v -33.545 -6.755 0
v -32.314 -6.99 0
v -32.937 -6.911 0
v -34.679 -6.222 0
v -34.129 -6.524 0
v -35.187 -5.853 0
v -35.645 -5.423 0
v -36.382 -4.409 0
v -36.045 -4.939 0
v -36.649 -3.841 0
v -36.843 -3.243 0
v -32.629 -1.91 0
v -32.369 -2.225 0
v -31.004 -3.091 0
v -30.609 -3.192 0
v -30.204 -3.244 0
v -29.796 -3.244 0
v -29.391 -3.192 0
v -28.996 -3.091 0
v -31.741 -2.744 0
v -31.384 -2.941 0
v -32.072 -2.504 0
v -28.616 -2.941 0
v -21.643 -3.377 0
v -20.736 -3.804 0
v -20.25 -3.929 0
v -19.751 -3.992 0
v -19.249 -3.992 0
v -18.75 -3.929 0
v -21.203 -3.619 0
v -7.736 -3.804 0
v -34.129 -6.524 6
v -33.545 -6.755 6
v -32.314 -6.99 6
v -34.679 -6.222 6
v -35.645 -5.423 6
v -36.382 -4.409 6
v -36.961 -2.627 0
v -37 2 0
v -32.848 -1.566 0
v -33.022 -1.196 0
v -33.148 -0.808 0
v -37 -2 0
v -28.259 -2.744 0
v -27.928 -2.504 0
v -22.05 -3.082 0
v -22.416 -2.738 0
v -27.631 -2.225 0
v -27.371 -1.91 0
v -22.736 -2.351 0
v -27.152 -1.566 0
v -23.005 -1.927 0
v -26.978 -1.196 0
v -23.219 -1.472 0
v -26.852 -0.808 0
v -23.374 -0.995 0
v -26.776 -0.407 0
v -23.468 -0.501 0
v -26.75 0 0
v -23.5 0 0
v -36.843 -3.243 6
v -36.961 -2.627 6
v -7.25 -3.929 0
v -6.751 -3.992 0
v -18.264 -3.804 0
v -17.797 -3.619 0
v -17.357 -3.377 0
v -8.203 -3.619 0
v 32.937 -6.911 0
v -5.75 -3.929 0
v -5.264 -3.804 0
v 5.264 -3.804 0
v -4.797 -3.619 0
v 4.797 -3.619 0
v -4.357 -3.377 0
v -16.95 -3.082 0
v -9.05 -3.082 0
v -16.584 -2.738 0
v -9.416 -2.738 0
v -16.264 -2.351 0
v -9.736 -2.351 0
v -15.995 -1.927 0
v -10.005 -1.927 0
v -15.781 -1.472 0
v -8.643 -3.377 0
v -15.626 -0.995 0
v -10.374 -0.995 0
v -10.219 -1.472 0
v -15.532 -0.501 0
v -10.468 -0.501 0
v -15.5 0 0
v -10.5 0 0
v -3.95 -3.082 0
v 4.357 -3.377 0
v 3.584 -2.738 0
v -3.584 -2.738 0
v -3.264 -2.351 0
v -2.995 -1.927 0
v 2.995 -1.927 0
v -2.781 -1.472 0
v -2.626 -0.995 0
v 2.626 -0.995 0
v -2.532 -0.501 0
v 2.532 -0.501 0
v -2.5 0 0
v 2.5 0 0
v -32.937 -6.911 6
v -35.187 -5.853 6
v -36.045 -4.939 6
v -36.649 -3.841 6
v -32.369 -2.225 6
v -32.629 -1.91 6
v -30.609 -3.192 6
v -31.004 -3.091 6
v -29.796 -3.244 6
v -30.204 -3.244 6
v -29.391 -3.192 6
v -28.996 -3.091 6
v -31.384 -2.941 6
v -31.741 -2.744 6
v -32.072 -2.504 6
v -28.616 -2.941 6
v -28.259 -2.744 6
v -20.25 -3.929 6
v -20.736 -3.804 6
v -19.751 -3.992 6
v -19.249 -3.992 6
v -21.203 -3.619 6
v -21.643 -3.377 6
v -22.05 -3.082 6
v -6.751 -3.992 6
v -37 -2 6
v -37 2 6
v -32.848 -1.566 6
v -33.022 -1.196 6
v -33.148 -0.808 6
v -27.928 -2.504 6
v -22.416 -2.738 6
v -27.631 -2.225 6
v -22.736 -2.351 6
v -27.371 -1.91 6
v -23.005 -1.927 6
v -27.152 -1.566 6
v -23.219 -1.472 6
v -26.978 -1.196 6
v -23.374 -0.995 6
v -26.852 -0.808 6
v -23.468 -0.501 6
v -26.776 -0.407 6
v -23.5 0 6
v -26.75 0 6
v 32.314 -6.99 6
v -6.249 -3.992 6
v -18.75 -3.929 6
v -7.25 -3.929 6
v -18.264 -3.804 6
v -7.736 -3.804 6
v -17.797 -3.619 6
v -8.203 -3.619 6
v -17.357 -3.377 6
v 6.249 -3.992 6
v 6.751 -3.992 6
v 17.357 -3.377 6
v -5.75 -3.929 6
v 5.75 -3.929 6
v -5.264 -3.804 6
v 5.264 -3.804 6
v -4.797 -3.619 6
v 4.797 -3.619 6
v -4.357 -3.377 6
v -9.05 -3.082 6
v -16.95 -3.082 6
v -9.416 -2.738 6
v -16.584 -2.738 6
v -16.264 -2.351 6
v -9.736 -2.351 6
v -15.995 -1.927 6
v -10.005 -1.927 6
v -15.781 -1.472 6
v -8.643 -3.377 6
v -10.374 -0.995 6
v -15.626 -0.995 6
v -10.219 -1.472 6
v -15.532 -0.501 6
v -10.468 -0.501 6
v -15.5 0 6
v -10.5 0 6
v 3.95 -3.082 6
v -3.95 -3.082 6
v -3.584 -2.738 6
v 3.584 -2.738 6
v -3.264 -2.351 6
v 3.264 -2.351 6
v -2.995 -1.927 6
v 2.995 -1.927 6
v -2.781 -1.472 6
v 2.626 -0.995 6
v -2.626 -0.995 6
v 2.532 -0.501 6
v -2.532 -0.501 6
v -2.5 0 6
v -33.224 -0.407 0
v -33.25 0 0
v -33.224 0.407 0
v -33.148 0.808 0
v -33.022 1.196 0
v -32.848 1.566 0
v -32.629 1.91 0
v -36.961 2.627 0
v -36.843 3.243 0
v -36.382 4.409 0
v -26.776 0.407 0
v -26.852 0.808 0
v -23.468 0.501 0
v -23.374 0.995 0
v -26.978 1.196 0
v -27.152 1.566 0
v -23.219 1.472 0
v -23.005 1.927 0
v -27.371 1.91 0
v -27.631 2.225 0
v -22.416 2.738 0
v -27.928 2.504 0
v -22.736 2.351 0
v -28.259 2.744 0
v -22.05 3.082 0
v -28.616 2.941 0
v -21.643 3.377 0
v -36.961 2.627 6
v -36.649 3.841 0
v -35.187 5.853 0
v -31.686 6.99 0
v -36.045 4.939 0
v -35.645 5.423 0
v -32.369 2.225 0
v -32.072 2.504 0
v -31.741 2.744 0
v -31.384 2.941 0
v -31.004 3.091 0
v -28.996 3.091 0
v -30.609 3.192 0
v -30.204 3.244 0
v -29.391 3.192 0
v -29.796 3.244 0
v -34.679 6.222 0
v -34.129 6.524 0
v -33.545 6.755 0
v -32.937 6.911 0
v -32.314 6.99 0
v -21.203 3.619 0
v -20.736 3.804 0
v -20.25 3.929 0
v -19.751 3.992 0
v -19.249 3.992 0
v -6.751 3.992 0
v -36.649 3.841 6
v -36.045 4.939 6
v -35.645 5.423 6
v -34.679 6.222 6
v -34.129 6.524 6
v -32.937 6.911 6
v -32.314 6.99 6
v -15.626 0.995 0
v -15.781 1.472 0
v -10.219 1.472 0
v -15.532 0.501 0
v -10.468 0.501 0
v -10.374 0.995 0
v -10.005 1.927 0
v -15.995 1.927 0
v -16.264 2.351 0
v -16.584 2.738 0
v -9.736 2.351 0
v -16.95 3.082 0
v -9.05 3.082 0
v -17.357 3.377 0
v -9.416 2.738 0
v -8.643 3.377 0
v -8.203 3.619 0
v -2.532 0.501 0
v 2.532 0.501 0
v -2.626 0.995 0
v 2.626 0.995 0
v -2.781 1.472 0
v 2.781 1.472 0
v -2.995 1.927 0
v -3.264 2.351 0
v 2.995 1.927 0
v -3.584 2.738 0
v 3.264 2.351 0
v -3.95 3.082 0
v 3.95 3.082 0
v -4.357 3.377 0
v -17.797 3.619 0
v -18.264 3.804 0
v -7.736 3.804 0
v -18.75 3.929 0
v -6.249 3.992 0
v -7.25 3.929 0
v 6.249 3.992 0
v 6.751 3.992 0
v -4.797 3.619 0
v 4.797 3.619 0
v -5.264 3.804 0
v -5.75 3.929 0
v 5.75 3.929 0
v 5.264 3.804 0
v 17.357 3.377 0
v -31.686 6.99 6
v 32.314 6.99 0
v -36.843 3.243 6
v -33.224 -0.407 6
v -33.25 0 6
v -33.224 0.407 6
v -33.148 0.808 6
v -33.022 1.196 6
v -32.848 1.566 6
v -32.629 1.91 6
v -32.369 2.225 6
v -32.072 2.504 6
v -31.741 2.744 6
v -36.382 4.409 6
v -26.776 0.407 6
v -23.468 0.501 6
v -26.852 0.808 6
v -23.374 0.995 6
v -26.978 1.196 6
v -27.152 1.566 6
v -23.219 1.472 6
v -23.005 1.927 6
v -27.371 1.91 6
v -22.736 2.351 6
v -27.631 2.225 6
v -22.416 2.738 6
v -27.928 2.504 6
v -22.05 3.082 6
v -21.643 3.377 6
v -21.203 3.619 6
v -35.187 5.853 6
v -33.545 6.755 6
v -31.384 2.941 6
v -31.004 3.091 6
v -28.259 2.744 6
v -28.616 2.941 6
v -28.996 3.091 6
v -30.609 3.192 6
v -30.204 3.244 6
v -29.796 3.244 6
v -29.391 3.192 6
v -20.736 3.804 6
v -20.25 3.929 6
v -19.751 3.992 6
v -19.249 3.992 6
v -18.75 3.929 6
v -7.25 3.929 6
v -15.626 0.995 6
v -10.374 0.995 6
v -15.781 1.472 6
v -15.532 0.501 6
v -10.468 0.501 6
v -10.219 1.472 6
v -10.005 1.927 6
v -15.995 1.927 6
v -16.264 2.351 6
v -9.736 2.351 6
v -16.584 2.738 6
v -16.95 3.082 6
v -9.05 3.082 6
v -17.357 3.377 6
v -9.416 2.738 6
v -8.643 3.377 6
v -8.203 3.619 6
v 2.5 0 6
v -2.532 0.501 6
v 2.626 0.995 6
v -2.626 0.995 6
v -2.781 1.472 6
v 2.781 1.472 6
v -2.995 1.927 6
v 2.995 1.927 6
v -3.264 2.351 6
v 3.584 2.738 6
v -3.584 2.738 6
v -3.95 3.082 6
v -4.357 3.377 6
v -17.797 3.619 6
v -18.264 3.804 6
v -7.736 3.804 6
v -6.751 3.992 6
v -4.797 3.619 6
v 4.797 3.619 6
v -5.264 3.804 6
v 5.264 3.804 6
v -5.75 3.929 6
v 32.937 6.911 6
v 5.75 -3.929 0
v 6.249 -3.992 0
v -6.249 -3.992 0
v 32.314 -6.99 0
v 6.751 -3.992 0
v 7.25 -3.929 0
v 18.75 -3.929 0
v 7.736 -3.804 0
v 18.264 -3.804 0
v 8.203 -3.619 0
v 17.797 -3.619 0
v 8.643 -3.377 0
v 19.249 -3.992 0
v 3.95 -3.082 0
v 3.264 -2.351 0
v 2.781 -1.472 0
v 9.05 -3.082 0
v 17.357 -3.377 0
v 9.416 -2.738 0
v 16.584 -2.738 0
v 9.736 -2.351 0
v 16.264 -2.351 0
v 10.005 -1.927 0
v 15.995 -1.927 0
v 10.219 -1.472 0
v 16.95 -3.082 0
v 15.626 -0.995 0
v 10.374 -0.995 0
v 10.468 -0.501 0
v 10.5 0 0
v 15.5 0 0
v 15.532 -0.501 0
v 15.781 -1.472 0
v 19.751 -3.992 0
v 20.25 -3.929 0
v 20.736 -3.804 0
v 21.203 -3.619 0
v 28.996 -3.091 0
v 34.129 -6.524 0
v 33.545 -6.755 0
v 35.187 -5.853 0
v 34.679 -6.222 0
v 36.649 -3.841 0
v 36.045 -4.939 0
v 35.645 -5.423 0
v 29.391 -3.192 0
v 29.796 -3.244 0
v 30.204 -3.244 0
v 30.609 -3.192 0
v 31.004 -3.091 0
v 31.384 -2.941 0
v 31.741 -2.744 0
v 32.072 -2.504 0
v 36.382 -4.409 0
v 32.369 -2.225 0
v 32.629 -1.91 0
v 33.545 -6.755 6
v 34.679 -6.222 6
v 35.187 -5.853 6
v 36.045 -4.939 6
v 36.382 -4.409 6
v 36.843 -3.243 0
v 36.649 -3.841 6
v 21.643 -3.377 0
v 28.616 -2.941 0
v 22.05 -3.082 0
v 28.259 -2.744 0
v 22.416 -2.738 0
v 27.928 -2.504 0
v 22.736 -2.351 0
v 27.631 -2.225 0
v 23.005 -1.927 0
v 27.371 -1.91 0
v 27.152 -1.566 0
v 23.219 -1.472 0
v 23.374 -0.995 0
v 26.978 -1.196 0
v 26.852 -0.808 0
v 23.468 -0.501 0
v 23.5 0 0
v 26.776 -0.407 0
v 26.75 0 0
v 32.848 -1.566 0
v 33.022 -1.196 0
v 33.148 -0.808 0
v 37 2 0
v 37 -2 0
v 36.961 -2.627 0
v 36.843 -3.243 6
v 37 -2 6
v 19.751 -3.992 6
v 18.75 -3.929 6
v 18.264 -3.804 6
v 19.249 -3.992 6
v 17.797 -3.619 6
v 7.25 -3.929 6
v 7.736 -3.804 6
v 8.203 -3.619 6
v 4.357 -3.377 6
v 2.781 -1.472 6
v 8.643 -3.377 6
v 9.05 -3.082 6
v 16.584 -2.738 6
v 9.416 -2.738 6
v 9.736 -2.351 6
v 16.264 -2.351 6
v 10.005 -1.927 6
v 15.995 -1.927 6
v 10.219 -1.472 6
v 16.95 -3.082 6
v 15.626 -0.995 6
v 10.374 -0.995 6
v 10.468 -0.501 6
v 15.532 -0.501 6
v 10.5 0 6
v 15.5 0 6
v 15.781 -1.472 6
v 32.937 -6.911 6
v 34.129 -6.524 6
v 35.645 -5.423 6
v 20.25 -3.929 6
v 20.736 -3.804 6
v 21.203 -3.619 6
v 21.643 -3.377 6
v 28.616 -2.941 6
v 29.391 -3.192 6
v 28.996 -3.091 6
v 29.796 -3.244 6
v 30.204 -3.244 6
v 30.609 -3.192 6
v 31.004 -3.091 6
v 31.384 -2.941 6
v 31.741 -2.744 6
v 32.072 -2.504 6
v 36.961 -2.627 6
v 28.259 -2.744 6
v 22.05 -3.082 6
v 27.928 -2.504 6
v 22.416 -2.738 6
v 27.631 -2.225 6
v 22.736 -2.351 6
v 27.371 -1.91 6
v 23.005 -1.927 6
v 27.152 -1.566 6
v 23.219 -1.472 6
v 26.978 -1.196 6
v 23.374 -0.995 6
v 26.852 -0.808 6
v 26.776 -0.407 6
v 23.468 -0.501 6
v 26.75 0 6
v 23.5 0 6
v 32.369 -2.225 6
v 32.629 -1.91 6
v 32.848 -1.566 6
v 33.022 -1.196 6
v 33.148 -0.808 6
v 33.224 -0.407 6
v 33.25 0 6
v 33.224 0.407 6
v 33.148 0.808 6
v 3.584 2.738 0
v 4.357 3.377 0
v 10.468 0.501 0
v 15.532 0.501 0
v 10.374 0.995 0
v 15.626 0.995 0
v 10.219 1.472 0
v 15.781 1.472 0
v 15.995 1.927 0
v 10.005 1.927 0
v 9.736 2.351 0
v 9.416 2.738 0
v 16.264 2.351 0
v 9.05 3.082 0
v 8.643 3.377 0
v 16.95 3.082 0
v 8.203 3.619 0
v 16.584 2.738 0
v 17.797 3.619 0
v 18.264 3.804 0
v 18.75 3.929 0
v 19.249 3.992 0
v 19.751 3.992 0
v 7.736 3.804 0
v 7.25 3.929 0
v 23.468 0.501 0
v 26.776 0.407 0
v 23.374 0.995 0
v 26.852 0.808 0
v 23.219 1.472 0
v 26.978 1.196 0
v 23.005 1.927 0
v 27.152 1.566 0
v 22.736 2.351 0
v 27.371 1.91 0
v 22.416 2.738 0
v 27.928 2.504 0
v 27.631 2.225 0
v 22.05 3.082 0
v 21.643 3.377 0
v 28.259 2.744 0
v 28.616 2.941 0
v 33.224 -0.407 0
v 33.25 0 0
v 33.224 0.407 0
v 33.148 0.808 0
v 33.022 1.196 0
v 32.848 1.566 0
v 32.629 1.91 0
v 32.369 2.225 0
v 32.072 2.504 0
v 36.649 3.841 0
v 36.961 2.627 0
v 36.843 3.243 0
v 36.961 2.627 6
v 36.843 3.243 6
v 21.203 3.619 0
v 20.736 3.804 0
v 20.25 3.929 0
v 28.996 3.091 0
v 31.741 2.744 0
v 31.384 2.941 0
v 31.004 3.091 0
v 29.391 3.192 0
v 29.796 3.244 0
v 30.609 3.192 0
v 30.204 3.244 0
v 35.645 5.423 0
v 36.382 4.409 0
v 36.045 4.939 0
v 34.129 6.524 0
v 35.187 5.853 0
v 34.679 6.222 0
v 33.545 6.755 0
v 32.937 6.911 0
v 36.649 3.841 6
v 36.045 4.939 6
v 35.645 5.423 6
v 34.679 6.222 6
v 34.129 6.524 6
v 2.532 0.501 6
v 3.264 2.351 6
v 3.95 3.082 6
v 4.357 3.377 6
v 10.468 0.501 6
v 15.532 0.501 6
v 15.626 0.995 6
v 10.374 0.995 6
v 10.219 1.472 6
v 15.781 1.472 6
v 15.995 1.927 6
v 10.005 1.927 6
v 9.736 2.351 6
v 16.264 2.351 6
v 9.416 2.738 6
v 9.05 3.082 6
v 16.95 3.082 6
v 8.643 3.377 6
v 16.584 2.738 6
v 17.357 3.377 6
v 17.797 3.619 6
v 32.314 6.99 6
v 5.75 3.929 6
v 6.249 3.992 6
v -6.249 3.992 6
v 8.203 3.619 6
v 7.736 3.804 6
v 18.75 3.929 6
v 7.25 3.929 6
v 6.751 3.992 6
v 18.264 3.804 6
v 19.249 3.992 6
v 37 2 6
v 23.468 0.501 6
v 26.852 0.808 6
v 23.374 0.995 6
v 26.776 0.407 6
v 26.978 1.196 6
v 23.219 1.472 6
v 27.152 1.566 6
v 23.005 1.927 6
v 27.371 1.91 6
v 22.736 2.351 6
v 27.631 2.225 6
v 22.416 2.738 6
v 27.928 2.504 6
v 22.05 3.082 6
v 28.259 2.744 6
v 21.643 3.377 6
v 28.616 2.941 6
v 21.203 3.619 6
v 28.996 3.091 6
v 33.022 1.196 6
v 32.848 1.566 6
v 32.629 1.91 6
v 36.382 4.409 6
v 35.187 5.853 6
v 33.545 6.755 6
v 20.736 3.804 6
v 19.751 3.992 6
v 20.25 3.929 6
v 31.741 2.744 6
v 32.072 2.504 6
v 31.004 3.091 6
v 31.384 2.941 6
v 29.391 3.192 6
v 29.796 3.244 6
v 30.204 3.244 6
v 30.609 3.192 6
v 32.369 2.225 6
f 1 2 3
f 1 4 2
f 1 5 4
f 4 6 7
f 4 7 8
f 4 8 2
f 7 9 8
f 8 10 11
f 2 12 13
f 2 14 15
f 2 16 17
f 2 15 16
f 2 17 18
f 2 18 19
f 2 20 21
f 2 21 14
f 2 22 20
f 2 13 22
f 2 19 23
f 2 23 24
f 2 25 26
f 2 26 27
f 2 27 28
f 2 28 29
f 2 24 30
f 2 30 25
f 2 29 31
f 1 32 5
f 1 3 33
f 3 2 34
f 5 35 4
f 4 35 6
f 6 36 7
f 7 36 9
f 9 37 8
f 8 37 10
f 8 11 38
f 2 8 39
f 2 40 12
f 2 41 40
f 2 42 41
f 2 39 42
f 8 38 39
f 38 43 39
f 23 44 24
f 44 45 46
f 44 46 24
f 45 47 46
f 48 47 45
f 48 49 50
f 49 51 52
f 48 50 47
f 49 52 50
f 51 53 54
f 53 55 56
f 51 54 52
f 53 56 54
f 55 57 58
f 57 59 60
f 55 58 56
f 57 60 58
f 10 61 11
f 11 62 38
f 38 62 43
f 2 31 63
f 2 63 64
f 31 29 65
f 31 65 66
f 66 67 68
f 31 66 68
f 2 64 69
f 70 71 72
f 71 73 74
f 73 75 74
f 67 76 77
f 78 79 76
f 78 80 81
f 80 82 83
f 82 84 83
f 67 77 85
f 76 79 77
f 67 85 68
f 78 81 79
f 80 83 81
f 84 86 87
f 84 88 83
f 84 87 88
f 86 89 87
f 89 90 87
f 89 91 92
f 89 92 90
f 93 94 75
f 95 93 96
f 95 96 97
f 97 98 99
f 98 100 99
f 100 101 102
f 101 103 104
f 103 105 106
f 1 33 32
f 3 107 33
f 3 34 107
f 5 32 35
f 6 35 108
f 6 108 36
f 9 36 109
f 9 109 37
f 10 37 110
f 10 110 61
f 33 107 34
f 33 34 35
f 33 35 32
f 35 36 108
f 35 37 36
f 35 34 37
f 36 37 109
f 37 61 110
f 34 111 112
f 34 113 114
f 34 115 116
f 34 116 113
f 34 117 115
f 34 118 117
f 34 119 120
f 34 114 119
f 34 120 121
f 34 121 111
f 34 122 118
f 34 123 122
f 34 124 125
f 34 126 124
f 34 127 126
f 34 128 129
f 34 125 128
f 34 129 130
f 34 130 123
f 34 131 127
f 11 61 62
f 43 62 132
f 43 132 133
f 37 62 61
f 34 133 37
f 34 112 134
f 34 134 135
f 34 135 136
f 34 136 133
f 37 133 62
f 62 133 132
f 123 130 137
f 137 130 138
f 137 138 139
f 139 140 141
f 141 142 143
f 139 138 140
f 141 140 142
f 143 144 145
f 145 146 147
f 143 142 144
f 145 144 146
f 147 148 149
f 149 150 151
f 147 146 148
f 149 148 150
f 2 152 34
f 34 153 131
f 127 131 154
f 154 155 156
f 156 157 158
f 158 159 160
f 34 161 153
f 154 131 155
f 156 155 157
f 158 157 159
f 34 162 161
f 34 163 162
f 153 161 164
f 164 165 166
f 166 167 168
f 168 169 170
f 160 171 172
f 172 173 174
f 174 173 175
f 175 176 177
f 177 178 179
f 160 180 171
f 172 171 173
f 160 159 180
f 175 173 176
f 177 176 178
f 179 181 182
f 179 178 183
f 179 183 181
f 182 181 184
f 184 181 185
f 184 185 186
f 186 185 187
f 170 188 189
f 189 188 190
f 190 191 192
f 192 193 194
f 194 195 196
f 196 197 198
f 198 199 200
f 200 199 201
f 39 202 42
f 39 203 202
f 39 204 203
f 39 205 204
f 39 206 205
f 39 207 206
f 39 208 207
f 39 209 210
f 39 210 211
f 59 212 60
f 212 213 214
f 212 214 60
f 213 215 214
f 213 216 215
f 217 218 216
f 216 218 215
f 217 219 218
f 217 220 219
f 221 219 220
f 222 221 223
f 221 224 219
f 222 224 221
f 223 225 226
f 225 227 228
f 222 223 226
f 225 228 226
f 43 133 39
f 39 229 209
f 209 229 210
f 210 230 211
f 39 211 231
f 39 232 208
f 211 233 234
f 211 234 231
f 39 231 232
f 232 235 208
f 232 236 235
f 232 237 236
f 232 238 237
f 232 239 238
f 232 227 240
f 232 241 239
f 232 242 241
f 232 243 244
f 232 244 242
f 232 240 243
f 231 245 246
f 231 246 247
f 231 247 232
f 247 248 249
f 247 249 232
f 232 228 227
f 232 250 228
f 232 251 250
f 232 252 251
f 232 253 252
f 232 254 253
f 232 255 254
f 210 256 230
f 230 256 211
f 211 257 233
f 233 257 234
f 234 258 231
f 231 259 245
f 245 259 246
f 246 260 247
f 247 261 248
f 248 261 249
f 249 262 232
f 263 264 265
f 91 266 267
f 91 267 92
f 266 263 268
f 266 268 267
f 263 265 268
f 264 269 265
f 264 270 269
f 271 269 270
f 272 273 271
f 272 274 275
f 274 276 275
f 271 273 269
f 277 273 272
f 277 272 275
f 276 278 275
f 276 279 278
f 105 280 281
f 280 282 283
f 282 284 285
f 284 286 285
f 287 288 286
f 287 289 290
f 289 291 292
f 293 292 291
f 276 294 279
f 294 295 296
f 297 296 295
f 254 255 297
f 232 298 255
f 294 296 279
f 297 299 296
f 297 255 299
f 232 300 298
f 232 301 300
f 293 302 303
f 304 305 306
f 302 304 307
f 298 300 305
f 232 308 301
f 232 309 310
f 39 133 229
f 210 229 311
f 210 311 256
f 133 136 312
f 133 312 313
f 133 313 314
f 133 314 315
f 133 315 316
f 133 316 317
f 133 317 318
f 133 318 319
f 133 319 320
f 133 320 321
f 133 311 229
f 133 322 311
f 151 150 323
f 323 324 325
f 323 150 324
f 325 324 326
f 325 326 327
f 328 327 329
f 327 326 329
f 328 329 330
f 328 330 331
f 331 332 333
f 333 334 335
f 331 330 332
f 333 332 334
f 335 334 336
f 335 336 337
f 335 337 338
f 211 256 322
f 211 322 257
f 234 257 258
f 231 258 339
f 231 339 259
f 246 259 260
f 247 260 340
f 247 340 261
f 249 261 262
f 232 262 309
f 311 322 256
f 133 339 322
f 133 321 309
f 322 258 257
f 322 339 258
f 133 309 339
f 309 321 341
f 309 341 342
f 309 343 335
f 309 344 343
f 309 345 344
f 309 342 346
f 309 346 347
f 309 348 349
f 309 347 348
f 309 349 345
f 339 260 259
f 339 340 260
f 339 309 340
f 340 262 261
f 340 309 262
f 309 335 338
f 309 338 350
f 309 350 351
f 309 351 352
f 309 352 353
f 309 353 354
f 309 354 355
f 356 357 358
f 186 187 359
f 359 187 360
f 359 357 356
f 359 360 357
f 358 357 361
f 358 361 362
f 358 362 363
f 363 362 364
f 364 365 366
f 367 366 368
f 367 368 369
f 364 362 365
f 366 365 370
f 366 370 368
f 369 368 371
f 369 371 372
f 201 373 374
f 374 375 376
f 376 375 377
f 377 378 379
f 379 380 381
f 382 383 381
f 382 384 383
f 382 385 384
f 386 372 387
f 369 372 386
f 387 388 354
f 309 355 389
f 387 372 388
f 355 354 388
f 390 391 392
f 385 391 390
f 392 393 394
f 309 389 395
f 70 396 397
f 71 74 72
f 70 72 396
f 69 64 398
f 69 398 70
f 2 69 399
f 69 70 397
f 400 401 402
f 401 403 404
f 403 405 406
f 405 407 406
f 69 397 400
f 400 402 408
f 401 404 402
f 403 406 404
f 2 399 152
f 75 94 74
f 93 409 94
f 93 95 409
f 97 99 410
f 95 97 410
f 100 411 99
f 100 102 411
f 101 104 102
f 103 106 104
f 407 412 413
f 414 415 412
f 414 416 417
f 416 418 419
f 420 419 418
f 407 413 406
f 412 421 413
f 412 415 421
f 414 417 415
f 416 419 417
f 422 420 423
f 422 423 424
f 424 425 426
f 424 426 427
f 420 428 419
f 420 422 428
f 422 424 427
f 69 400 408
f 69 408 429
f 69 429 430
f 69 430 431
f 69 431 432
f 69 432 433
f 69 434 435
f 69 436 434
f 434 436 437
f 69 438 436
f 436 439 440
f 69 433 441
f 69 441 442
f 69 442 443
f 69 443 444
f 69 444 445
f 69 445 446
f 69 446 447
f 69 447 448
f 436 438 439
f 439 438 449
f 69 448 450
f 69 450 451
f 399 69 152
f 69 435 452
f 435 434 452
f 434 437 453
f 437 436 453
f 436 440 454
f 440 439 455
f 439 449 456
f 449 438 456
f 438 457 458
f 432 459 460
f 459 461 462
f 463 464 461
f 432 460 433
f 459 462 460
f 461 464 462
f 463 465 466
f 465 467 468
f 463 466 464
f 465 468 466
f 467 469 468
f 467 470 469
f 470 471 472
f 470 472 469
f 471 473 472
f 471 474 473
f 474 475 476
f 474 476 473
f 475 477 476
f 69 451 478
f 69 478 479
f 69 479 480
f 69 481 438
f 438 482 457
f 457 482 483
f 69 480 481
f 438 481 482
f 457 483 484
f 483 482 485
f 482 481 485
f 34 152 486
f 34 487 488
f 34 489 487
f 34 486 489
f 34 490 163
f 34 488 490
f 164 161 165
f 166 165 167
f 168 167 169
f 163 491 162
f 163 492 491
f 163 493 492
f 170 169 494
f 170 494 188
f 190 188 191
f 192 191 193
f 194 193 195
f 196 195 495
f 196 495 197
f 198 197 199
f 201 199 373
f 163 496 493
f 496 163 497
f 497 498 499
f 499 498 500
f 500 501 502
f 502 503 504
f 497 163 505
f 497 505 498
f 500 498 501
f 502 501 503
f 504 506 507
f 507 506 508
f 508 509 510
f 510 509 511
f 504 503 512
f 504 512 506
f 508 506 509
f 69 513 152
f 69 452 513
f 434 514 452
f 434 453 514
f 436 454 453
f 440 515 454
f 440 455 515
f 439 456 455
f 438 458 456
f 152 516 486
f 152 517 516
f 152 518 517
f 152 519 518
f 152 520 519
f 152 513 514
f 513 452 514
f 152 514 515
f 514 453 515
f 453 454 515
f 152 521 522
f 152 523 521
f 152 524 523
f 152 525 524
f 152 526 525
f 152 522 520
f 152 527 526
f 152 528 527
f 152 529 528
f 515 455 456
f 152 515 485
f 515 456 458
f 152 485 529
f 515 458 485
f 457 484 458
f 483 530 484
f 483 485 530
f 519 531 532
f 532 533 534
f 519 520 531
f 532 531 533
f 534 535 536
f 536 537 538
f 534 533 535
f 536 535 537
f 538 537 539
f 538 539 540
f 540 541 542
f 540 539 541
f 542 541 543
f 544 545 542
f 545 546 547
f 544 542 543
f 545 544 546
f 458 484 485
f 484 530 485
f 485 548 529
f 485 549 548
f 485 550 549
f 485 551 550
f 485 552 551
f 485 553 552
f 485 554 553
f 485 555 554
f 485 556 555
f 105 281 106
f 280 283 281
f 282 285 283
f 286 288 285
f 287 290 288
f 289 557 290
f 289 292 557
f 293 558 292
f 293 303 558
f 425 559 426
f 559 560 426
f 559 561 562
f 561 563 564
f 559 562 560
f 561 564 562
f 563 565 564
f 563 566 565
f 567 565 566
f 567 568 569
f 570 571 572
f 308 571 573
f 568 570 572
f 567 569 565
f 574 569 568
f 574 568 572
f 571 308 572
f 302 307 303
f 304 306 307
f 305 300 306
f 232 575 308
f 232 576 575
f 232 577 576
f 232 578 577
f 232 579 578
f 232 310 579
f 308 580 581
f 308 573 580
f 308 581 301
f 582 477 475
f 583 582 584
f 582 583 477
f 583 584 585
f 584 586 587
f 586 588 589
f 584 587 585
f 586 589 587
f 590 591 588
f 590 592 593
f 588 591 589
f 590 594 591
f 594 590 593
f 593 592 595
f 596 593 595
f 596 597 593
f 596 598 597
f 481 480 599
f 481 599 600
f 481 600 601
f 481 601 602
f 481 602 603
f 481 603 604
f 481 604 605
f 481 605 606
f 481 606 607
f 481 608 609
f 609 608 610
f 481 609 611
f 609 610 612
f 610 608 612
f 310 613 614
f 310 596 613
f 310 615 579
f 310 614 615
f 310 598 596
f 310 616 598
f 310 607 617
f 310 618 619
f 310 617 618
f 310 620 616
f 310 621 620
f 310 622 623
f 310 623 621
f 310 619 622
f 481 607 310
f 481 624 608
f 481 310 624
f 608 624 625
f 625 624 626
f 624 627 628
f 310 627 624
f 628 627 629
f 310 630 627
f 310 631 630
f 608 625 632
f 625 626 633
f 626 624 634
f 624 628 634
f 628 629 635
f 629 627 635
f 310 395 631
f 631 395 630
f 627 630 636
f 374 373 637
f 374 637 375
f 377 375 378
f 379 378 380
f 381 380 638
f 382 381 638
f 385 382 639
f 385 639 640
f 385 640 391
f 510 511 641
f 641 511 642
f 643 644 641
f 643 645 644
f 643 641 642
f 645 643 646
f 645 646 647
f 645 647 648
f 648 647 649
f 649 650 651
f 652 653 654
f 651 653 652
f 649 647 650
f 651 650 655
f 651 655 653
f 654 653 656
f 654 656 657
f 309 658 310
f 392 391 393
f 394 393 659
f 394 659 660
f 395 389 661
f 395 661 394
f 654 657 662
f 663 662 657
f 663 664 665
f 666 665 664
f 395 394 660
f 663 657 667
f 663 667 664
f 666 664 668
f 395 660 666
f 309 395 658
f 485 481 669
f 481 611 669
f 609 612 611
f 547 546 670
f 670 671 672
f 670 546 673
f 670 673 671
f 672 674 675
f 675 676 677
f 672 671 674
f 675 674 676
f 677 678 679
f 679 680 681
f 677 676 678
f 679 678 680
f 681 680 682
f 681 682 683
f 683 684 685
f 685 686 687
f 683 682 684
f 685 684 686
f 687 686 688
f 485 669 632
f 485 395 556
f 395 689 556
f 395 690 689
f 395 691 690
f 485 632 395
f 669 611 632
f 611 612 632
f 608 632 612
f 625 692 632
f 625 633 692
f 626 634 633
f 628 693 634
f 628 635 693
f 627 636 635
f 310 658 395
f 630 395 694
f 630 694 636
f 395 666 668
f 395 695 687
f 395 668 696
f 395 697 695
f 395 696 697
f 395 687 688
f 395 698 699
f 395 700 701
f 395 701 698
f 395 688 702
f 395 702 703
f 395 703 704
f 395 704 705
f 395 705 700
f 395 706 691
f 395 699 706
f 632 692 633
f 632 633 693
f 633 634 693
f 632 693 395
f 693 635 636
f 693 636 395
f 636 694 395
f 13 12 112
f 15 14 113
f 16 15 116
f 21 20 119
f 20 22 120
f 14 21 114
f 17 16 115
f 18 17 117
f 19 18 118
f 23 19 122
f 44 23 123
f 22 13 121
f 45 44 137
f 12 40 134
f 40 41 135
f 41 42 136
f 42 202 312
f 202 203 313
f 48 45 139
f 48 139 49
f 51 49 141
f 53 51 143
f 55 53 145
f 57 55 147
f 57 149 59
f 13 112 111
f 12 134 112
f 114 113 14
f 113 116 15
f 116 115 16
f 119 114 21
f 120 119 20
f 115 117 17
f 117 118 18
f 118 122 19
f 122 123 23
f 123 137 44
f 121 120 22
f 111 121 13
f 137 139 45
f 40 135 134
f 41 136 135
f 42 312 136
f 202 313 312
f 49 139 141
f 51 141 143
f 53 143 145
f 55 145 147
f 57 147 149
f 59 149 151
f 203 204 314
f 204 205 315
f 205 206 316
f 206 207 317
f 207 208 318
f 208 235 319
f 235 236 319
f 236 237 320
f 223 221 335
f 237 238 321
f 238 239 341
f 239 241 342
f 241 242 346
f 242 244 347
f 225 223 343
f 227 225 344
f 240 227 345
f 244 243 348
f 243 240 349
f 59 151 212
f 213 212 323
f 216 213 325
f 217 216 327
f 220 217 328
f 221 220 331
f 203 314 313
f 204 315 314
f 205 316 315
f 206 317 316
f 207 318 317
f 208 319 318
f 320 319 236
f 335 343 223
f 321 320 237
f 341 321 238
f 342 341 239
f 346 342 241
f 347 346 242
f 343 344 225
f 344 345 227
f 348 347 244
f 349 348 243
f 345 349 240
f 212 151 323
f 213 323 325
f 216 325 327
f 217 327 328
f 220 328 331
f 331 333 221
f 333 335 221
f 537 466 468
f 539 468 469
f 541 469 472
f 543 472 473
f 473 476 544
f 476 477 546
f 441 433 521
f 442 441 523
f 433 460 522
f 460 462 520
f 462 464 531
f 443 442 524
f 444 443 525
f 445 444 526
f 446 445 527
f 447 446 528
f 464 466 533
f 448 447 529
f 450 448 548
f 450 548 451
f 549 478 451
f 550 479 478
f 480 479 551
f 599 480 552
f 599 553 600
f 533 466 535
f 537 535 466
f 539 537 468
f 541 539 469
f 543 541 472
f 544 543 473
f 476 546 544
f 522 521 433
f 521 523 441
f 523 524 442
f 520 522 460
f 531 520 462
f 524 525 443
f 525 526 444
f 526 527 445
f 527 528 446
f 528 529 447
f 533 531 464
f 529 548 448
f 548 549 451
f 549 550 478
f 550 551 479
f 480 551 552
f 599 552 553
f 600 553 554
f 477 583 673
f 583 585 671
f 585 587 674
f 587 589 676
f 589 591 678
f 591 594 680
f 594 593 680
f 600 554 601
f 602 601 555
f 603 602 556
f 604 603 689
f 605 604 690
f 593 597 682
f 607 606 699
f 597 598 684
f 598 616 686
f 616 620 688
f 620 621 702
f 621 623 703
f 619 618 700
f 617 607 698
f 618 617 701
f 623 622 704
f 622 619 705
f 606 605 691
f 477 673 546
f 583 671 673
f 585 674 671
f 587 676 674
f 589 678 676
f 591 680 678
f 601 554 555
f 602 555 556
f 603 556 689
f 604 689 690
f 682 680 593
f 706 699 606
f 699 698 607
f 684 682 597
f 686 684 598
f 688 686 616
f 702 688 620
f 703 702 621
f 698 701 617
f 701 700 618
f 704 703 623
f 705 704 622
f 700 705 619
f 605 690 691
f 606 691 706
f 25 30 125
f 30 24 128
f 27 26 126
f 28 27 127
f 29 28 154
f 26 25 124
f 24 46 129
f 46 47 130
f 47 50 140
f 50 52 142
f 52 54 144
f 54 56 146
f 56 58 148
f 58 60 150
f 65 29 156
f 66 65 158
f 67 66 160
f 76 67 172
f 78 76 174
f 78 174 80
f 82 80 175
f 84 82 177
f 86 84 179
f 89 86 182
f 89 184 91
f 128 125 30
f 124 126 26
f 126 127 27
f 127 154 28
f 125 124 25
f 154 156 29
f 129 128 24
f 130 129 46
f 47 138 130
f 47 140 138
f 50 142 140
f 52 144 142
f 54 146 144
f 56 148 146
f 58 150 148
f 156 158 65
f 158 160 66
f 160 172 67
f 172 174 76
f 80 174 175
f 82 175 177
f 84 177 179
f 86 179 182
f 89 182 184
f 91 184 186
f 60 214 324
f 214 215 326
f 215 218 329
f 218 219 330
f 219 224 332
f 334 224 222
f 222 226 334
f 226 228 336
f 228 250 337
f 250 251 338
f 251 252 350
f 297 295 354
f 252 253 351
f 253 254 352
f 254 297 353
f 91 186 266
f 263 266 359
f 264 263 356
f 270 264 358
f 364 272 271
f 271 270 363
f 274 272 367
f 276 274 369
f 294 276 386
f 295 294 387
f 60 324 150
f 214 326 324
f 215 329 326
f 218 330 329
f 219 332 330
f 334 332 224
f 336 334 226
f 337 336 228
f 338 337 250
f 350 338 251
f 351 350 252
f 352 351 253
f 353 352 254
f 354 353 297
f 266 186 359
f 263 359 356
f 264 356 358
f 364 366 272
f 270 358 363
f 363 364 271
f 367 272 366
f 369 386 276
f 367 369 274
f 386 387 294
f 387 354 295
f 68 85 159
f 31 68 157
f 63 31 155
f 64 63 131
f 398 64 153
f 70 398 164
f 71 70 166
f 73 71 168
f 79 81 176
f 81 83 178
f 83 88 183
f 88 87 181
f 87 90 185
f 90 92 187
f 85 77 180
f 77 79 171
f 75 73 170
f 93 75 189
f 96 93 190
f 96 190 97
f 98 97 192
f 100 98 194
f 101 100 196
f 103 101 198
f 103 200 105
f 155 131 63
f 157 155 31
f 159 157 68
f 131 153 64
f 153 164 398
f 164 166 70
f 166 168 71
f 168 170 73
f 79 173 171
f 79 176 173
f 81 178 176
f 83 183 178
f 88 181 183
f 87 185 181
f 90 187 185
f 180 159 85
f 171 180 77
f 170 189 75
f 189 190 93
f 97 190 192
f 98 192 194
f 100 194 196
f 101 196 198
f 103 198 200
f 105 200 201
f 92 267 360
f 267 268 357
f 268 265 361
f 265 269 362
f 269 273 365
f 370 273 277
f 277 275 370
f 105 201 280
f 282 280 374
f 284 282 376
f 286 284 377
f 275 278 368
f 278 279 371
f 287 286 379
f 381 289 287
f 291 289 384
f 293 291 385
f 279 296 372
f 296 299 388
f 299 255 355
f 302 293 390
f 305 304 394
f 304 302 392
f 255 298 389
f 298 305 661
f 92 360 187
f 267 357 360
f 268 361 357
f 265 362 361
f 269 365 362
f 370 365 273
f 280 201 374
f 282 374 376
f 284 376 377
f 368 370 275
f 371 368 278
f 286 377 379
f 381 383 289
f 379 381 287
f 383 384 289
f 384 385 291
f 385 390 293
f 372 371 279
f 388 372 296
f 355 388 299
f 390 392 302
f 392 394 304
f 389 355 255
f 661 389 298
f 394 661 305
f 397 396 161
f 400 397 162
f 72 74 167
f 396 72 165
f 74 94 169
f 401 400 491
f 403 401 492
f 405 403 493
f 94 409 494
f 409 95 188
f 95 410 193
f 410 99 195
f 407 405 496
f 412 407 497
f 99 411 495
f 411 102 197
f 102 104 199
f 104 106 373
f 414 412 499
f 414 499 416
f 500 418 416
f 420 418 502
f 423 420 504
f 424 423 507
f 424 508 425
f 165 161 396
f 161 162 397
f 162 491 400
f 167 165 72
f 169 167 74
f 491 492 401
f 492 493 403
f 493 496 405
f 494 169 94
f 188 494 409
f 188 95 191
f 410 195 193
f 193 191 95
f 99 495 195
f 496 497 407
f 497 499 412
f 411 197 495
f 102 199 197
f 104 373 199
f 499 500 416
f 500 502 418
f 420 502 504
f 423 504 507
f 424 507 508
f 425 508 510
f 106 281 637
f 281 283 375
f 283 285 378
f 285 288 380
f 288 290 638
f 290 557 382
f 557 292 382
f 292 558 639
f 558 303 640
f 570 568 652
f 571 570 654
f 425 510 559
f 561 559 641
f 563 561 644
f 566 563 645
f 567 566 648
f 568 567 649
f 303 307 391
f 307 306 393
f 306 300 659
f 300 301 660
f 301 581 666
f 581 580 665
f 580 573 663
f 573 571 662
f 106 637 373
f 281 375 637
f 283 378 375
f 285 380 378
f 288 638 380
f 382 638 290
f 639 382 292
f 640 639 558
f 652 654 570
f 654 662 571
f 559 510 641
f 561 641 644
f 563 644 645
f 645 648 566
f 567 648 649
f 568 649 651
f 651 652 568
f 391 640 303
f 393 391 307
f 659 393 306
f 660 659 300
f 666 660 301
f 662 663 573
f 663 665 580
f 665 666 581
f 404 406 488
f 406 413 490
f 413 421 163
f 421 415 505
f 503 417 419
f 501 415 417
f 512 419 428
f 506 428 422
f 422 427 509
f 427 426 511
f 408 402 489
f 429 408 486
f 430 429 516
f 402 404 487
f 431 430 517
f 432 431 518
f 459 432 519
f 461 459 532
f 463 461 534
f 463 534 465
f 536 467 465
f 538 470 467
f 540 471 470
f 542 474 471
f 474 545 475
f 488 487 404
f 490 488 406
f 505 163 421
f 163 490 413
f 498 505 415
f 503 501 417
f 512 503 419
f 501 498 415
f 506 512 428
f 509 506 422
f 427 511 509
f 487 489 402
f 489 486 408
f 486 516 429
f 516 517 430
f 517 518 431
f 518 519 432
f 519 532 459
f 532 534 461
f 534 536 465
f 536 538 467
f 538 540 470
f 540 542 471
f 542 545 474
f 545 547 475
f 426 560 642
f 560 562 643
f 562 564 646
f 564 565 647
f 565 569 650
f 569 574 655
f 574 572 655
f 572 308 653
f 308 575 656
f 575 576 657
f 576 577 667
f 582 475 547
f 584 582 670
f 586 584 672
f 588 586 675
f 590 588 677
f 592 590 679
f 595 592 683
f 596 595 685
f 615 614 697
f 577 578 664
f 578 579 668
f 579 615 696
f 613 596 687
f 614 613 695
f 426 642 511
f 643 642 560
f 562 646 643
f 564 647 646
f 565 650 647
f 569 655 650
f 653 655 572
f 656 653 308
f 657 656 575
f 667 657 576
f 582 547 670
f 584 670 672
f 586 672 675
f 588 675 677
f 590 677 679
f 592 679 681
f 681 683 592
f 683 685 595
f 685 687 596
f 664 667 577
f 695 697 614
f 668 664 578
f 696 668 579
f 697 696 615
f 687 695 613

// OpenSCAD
$fn = 50;

difference() {
	union() {
		hull() {
			translate(v = [-32.0, 2.0, 0]) {
				cylinder(h = 6, r = 5);
			}
			translate(v = [32.0, 2.0, 0]) {
				cylinder(h = 6, r = 5);
			}
			translate(v = [-32.0, -2.0, 0]) {
				cylinder(h = 6, r = 5);
			}
			translate(v = [32.0, -2.0, 0]) {
				cylinder(h = 6, r = 5);
			}
		}
	}
	union() {
		translate(v = [-30.0, 0.0, 0]) {
			cylinder(h = 6, r = 3.25);
		}
		translate(v = [30.0, 0.0, 0]) {
			cylinder(h = 6, r = 3.25);
		}
		translate(v = [-19.5, 0, 0.0]) {
			cylinder(h = 6, r = 4.0);
		}
		translate(v = [-6.5, 0, 0.0]) {
			cylinder(h = 6, r = 4.0);
		}
		translate(v = [6.5, 0, 0.0]) {
			cylinder(h = 6, r = 4.0);
		}
		translate(v = [19.5, 0, 0.0]) {
			cylinder(h = 6, r = 4.0);
		}
	}
}
